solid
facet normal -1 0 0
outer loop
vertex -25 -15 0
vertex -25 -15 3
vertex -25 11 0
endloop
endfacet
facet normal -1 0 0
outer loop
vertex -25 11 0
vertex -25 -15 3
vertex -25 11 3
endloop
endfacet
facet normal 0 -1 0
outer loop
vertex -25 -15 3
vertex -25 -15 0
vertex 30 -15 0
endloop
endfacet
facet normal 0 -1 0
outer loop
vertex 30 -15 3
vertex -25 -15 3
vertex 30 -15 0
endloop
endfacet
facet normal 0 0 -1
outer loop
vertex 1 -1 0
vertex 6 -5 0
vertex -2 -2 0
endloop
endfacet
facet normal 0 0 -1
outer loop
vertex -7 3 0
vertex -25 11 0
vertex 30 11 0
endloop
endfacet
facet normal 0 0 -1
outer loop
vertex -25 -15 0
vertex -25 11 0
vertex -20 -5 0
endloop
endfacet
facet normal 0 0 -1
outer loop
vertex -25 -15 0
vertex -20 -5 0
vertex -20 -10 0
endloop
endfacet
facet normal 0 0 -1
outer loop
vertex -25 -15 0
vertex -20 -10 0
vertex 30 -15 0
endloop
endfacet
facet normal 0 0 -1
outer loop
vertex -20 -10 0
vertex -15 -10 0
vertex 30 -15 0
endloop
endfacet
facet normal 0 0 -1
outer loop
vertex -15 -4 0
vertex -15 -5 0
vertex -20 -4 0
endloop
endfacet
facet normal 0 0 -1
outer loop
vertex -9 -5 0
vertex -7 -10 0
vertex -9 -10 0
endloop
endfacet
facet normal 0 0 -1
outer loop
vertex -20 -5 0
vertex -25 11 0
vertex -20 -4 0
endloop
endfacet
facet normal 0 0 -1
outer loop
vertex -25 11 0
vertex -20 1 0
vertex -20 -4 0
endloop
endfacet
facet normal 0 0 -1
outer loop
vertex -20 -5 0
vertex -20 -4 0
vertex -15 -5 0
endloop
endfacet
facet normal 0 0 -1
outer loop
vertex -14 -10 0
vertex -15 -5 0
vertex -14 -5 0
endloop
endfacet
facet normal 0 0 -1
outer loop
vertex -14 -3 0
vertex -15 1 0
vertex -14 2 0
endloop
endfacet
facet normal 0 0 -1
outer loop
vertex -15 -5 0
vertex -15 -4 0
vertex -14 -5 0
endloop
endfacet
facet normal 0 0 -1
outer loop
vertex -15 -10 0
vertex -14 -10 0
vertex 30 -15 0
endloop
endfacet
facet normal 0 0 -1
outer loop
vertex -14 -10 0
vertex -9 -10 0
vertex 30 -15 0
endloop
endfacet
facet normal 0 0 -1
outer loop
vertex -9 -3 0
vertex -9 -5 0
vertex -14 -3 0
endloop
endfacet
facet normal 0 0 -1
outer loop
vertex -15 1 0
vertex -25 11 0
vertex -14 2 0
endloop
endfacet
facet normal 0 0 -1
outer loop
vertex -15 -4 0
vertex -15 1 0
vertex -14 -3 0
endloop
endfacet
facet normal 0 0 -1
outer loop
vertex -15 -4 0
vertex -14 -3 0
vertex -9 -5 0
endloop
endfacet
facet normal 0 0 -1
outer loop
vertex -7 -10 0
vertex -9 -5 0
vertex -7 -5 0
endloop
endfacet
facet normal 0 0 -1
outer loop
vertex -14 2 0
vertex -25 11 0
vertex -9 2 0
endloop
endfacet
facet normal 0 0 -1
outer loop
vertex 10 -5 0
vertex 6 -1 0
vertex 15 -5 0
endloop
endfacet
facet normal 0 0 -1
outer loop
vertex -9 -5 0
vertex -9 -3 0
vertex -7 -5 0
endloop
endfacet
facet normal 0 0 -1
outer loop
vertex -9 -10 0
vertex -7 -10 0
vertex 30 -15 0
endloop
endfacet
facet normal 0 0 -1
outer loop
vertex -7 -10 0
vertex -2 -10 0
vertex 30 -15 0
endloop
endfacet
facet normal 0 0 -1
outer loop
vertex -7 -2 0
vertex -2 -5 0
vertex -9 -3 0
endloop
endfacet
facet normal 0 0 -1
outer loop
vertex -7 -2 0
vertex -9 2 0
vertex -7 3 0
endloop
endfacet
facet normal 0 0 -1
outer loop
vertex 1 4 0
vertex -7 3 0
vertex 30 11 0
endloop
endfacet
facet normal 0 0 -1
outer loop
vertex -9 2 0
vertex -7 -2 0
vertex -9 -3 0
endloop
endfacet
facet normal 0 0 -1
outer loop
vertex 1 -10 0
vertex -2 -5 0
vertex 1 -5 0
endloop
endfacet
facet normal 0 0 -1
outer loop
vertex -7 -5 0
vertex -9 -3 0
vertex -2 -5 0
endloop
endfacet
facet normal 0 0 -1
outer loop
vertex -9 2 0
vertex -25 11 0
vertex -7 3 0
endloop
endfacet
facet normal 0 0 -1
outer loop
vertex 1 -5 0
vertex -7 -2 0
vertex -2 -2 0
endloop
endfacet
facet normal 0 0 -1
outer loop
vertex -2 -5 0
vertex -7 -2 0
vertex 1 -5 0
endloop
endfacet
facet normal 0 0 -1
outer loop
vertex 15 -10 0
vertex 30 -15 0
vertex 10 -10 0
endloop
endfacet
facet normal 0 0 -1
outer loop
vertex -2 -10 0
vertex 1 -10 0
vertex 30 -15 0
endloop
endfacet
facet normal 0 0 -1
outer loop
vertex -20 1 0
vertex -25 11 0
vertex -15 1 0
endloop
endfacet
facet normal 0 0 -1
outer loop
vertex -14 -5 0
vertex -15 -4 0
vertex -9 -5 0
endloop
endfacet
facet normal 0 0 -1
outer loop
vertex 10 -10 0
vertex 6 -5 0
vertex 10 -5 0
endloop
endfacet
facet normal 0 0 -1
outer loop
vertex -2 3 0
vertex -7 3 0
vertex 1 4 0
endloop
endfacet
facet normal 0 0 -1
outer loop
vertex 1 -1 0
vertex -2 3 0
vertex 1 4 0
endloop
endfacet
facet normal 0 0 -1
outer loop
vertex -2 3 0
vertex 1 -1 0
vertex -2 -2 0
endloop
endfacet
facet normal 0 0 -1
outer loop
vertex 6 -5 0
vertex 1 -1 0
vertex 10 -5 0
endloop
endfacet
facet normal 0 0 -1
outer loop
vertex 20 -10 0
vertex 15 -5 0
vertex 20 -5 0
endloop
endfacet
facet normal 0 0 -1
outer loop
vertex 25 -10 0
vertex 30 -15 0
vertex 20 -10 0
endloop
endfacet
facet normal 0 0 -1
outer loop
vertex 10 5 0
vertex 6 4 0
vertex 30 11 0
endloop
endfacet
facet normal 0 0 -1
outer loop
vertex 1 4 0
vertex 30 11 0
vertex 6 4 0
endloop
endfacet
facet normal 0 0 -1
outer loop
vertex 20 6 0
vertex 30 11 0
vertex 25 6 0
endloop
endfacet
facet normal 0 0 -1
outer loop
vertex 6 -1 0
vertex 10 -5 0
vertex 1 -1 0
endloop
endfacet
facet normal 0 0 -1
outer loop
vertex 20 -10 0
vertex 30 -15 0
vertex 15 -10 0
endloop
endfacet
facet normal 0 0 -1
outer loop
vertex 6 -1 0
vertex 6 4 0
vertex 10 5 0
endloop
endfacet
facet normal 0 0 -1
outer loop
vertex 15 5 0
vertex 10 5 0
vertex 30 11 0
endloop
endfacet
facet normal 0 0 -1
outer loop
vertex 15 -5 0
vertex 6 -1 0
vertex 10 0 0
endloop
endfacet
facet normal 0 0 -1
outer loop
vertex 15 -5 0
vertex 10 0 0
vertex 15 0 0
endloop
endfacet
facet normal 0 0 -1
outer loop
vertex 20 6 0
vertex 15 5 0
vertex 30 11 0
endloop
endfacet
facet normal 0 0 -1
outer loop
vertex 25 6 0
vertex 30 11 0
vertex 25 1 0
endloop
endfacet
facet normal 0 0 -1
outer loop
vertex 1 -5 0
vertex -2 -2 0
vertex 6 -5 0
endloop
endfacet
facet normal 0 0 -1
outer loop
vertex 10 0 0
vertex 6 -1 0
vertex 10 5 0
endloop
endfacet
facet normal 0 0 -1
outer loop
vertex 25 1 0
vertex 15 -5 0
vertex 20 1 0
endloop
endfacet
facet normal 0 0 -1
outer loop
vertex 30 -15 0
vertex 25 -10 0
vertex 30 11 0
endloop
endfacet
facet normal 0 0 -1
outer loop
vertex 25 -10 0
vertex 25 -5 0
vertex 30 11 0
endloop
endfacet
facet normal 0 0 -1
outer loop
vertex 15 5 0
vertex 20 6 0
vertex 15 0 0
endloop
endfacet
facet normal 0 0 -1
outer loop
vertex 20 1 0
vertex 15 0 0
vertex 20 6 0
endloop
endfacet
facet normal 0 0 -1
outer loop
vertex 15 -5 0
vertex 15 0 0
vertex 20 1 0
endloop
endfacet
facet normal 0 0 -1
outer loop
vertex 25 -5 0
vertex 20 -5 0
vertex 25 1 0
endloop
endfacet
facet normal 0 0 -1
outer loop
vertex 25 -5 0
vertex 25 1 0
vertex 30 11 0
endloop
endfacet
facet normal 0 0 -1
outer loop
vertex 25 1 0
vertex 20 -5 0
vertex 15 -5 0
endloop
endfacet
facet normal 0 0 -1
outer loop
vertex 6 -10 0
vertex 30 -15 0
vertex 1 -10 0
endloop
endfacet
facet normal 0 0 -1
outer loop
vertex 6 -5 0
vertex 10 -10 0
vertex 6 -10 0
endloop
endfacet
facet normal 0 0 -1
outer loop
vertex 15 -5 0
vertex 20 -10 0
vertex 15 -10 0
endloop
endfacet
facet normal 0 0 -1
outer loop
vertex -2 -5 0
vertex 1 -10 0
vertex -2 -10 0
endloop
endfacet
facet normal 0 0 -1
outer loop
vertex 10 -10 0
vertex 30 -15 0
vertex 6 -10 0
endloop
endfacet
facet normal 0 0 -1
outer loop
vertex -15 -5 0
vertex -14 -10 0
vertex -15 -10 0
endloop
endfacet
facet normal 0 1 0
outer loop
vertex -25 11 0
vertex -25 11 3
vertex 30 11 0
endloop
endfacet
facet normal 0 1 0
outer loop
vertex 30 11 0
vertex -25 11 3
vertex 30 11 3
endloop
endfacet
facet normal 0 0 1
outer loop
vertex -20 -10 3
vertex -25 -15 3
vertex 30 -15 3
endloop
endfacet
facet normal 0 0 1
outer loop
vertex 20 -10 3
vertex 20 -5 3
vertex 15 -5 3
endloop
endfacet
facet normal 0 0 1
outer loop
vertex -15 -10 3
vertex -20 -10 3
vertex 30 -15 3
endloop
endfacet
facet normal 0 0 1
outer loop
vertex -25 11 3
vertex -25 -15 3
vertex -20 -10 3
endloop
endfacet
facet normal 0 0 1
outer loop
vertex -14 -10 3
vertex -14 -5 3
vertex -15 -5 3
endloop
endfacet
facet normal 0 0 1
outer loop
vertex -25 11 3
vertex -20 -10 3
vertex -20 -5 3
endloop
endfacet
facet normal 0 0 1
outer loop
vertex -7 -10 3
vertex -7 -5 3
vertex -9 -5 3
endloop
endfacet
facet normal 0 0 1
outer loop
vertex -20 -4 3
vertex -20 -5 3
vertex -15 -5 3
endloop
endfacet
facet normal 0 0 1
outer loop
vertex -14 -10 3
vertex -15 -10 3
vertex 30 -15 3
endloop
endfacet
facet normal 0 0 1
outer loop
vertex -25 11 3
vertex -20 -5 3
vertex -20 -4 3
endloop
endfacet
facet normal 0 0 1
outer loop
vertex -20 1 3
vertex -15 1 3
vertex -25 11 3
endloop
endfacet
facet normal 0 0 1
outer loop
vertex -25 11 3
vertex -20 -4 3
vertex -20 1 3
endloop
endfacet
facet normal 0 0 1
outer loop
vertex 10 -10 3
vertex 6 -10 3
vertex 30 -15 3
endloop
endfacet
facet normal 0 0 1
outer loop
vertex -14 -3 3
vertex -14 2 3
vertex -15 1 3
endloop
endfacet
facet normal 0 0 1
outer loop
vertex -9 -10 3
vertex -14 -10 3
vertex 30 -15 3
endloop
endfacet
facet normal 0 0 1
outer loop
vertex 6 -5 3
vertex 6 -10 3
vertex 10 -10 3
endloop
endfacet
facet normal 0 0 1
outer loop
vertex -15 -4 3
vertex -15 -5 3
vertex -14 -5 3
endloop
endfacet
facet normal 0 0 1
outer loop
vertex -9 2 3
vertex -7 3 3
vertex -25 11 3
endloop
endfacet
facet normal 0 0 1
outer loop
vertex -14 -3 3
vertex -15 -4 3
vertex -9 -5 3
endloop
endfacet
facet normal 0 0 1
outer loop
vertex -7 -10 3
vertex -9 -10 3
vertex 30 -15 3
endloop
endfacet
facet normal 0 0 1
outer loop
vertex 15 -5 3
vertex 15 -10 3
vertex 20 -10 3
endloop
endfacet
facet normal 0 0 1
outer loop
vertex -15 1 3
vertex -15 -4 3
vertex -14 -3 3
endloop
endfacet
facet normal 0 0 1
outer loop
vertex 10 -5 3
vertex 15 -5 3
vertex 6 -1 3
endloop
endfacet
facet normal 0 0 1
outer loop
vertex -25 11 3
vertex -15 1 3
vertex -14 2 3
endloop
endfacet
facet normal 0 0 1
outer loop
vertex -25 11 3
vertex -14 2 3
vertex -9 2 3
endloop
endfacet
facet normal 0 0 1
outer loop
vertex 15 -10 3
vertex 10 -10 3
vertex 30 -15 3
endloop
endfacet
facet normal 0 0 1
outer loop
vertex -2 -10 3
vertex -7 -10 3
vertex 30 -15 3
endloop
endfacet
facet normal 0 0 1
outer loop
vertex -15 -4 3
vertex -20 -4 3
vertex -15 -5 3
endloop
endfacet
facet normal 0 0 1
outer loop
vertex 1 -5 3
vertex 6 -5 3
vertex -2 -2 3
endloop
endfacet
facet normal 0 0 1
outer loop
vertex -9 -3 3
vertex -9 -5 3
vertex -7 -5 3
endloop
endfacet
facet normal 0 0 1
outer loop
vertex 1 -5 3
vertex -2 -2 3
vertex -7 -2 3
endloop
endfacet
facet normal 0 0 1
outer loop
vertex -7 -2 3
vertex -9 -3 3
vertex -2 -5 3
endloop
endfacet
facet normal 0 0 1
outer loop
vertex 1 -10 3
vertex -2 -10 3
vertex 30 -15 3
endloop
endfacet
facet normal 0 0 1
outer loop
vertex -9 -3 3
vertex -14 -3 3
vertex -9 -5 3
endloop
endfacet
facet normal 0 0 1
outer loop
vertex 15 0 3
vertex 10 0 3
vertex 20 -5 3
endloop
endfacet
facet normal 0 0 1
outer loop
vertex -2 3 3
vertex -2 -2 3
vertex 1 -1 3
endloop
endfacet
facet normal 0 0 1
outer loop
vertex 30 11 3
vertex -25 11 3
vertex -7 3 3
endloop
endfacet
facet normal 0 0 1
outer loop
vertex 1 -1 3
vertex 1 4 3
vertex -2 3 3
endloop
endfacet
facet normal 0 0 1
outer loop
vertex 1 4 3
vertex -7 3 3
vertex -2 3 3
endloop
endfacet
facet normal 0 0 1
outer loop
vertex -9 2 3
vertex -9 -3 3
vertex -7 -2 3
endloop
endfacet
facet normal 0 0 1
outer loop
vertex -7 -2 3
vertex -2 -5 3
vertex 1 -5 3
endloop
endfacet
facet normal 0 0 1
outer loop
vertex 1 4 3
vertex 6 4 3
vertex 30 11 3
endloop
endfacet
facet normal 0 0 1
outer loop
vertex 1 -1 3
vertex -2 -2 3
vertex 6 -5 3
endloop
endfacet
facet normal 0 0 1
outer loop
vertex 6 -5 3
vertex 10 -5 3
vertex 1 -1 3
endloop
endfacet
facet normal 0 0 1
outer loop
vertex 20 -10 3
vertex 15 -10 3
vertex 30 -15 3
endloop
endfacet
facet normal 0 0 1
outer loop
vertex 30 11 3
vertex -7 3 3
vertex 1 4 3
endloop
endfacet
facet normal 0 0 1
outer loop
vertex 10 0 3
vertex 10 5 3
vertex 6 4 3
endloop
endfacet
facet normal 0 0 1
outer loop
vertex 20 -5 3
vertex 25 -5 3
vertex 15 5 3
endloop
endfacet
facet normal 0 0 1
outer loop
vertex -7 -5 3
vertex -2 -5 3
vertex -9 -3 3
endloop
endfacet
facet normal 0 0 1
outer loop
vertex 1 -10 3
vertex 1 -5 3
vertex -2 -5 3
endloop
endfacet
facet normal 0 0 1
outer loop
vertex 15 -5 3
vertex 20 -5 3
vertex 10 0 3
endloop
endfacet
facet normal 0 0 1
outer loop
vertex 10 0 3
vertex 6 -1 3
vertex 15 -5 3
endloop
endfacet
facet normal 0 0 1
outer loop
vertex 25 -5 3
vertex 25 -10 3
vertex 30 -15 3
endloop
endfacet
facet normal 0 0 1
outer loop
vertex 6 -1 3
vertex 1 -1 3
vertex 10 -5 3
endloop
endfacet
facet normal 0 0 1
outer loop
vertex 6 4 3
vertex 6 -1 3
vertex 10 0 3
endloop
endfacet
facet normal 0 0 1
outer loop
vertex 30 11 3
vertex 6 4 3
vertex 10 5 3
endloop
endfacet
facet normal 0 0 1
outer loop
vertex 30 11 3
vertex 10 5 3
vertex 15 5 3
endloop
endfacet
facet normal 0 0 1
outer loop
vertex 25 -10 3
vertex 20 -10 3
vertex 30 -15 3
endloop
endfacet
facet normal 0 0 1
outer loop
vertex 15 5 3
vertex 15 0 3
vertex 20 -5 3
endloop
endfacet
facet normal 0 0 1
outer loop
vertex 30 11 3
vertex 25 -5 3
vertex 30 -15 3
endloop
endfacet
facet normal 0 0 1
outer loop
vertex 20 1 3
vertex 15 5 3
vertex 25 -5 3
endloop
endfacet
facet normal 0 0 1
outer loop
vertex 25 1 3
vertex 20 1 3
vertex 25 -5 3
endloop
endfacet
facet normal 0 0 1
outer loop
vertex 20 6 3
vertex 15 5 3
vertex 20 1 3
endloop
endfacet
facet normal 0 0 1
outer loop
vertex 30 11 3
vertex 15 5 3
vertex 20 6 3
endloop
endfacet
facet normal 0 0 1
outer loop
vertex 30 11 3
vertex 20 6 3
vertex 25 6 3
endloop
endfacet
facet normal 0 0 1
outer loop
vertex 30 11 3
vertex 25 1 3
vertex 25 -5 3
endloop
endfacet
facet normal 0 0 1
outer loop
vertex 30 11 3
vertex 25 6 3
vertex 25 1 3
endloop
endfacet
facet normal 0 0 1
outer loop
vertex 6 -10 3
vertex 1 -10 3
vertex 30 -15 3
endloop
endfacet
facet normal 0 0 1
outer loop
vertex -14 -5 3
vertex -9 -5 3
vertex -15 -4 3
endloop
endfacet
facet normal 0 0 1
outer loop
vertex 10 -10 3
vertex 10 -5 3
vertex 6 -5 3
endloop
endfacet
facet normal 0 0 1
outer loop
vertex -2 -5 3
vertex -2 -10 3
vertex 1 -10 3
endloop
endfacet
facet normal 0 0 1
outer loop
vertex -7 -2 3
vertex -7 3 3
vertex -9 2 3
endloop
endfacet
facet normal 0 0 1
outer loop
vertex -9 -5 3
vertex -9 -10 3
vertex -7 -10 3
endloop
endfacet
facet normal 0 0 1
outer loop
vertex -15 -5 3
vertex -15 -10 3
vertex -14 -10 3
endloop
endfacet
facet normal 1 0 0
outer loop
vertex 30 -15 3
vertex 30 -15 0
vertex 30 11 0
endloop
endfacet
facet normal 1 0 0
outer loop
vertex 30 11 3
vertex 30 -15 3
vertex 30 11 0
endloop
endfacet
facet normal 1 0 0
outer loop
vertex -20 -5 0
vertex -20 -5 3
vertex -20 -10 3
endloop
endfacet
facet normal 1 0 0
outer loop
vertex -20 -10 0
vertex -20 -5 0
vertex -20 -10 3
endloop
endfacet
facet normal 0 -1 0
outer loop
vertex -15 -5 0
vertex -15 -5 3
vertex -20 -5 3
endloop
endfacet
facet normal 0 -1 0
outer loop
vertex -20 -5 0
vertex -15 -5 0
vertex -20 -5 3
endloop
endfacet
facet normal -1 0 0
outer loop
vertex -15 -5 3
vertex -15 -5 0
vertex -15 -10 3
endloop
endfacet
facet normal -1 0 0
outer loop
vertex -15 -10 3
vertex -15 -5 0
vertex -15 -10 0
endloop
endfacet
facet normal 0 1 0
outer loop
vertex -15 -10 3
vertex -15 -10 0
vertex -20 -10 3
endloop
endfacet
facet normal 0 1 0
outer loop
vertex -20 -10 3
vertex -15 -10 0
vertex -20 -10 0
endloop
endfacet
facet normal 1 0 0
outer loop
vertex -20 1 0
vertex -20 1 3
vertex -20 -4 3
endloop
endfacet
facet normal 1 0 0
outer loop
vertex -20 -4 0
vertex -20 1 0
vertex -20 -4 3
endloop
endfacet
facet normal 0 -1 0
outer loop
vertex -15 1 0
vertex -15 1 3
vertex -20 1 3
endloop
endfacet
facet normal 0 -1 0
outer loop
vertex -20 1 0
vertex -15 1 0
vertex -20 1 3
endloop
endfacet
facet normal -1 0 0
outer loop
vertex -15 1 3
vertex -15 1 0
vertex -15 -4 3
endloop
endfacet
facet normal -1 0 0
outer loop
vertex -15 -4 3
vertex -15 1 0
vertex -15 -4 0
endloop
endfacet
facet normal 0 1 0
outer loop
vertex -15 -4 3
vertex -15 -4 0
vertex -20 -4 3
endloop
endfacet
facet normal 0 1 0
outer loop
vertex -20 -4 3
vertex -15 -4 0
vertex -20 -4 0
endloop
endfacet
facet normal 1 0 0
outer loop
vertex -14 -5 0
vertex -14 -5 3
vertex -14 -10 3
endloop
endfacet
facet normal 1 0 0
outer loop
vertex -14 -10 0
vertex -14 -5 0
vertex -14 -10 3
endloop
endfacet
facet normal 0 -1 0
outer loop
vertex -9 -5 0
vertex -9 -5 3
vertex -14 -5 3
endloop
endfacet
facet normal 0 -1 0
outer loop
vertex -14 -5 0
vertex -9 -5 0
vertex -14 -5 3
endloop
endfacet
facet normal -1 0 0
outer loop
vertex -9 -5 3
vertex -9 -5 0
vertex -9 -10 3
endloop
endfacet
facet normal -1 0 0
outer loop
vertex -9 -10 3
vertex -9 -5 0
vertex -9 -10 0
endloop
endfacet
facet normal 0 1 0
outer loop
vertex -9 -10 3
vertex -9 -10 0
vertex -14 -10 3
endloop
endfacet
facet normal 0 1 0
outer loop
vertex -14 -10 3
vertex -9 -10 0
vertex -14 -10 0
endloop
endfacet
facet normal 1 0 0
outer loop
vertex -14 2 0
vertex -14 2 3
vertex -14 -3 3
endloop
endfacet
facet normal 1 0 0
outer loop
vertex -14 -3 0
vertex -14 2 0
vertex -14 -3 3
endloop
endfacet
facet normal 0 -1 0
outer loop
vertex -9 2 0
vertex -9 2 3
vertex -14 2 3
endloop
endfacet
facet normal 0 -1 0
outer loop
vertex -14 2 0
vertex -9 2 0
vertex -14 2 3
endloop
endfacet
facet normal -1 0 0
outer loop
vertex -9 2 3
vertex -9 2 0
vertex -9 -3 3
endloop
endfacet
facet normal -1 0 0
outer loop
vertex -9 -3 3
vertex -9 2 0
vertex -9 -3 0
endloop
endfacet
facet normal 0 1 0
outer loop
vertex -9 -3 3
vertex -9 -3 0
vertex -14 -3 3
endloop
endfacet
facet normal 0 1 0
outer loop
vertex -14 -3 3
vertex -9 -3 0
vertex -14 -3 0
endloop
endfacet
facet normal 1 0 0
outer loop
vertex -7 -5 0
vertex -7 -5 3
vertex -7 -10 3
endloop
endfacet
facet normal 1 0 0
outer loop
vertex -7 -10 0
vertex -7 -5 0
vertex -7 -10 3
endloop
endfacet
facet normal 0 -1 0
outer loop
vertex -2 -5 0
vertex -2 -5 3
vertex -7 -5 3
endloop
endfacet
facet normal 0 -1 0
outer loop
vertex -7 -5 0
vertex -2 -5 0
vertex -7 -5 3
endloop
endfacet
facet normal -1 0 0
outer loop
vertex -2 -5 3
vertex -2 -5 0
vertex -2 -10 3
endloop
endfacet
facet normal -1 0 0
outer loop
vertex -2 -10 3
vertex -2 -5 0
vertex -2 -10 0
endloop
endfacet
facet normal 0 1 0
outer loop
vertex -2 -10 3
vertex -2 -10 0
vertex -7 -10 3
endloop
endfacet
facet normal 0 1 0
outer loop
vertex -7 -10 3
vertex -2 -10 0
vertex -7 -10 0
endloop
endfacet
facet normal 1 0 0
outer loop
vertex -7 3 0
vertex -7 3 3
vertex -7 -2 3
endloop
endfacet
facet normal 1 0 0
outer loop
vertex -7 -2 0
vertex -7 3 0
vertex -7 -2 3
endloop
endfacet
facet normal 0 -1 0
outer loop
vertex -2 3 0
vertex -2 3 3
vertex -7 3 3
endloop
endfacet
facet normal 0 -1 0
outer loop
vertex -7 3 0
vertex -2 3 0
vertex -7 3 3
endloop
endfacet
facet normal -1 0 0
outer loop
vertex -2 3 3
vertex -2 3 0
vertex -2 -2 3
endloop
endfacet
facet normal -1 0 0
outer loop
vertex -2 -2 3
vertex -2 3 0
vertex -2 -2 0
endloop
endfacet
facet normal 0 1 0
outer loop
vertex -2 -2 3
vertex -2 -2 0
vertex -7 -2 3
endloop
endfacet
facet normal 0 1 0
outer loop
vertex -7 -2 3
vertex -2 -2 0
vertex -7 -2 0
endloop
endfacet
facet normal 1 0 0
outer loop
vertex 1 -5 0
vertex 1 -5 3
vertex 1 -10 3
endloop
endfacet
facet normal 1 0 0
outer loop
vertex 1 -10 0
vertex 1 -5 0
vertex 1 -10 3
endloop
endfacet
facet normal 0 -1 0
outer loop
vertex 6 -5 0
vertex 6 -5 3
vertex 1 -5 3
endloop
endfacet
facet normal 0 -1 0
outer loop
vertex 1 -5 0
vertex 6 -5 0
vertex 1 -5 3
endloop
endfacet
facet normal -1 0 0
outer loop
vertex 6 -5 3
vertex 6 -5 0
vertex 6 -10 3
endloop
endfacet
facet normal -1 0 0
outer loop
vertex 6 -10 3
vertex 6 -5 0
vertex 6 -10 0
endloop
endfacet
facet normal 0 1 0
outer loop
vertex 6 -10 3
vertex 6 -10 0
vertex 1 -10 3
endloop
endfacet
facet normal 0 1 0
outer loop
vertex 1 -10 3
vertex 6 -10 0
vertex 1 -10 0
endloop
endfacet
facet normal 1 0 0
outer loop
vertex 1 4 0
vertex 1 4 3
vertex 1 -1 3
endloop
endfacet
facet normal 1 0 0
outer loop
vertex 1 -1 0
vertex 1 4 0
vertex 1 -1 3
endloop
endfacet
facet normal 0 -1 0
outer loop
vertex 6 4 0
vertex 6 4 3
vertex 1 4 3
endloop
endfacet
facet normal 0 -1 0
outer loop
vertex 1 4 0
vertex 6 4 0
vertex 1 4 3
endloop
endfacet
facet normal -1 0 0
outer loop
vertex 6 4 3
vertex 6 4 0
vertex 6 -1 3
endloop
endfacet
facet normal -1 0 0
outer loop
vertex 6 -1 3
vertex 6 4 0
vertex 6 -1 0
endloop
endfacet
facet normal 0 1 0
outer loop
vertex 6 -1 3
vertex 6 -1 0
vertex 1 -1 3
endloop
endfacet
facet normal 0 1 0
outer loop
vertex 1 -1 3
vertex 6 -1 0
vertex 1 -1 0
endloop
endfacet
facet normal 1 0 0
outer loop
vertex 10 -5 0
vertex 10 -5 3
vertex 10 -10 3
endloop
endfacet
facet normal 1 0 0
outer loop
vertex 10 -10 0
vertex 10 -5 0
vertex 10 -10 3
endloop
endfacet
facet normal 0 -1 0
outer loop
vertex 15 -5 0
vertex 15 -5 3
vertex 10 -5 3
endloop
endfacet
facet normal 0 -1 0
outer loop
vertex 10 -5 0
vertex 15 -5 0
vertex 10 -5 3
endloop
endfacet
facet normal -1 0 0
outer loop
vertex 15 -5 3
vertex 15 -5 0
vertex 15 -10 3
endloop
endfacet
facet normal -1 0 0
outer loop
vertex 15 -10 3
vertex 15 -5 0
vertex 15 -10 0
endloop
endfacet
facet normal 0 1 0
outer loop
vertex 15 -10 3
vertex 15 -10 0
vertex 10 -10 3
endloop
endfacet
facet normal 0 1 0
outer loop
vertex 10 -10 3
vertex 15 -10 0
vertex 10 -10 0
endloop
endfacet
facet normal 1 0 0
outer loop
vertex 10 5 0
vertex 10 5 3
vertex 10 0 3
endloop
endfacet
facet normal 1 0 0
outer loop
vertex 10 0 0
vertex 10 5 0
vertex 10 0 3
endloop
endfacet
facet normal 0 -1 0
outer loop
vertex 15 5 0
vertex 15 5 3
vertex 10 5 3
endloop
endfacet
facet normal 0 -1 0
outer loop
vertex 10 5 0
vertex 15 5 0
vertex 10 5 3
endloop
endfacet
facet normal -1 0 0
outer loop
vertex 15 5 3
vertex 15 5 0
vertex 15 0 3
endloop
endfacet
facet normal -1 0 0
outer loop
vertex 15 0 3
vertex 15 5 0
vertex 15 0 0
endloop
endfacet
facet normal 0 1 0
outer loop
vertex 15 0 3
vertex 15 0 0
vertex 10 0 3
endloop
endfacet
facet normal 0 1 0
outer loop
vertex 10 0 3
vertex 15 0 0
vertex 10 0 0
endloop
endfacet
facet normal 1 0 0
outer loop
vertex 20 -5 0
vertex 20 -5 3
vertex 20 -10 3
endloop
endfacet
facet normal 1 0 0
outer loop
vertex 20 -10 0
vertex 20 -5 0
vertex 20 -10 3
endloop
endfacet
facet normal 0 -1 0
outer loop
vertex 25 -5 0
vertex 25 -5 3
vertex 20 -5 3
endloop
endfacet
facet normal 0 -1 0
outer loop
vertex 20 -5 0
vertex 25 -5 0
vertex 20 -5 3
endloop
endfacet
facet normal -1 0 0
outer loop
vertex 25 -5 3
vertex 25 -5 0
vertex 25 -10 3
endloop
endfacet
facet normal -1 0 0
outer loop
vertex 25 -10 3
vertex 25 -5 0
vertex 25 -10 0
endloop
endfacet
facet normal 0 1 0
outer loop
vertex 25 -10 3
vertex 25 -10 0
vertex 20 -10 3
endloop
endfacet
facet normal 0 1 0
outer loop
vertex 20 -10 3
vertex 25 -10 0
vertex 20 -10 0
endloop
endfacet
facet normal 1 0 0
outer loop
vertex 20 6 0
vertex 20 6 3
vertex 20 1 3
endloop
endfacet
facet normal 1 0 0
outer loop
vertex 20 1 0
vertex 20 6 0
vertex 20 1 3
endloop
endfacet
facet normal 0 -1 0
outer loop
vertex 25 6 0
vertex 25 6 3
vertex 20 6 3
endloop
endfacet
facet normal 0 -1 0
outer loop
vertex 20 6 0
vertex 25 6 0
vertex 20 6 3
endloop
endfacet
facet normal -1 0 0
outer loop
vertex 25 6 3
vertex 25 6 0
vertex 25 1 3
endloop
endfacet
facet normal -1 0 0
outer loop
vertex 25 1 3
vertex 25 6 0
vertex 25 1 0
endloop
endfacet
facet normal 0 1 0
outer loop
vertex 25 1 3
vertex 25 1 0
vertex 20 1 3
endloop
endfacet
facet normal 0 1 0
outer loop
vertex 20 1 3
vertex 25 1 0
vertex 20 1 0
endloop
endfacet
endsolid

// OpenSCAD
translate([-25,-15,0])
difference() {
	cube([55,26,3]);
	for(i=[ [5, 5,0], [11, 5,0], [18, 5,0], [26, 5,0], [35, 5,0], [45, 5,0] ,
			[5,11,0], [11,12,0], [18,13,0], [26,14,0], [35,15,0], [45,16,0] ]) {
		translate(i)
			cube([5,5,3]);
	}
}
